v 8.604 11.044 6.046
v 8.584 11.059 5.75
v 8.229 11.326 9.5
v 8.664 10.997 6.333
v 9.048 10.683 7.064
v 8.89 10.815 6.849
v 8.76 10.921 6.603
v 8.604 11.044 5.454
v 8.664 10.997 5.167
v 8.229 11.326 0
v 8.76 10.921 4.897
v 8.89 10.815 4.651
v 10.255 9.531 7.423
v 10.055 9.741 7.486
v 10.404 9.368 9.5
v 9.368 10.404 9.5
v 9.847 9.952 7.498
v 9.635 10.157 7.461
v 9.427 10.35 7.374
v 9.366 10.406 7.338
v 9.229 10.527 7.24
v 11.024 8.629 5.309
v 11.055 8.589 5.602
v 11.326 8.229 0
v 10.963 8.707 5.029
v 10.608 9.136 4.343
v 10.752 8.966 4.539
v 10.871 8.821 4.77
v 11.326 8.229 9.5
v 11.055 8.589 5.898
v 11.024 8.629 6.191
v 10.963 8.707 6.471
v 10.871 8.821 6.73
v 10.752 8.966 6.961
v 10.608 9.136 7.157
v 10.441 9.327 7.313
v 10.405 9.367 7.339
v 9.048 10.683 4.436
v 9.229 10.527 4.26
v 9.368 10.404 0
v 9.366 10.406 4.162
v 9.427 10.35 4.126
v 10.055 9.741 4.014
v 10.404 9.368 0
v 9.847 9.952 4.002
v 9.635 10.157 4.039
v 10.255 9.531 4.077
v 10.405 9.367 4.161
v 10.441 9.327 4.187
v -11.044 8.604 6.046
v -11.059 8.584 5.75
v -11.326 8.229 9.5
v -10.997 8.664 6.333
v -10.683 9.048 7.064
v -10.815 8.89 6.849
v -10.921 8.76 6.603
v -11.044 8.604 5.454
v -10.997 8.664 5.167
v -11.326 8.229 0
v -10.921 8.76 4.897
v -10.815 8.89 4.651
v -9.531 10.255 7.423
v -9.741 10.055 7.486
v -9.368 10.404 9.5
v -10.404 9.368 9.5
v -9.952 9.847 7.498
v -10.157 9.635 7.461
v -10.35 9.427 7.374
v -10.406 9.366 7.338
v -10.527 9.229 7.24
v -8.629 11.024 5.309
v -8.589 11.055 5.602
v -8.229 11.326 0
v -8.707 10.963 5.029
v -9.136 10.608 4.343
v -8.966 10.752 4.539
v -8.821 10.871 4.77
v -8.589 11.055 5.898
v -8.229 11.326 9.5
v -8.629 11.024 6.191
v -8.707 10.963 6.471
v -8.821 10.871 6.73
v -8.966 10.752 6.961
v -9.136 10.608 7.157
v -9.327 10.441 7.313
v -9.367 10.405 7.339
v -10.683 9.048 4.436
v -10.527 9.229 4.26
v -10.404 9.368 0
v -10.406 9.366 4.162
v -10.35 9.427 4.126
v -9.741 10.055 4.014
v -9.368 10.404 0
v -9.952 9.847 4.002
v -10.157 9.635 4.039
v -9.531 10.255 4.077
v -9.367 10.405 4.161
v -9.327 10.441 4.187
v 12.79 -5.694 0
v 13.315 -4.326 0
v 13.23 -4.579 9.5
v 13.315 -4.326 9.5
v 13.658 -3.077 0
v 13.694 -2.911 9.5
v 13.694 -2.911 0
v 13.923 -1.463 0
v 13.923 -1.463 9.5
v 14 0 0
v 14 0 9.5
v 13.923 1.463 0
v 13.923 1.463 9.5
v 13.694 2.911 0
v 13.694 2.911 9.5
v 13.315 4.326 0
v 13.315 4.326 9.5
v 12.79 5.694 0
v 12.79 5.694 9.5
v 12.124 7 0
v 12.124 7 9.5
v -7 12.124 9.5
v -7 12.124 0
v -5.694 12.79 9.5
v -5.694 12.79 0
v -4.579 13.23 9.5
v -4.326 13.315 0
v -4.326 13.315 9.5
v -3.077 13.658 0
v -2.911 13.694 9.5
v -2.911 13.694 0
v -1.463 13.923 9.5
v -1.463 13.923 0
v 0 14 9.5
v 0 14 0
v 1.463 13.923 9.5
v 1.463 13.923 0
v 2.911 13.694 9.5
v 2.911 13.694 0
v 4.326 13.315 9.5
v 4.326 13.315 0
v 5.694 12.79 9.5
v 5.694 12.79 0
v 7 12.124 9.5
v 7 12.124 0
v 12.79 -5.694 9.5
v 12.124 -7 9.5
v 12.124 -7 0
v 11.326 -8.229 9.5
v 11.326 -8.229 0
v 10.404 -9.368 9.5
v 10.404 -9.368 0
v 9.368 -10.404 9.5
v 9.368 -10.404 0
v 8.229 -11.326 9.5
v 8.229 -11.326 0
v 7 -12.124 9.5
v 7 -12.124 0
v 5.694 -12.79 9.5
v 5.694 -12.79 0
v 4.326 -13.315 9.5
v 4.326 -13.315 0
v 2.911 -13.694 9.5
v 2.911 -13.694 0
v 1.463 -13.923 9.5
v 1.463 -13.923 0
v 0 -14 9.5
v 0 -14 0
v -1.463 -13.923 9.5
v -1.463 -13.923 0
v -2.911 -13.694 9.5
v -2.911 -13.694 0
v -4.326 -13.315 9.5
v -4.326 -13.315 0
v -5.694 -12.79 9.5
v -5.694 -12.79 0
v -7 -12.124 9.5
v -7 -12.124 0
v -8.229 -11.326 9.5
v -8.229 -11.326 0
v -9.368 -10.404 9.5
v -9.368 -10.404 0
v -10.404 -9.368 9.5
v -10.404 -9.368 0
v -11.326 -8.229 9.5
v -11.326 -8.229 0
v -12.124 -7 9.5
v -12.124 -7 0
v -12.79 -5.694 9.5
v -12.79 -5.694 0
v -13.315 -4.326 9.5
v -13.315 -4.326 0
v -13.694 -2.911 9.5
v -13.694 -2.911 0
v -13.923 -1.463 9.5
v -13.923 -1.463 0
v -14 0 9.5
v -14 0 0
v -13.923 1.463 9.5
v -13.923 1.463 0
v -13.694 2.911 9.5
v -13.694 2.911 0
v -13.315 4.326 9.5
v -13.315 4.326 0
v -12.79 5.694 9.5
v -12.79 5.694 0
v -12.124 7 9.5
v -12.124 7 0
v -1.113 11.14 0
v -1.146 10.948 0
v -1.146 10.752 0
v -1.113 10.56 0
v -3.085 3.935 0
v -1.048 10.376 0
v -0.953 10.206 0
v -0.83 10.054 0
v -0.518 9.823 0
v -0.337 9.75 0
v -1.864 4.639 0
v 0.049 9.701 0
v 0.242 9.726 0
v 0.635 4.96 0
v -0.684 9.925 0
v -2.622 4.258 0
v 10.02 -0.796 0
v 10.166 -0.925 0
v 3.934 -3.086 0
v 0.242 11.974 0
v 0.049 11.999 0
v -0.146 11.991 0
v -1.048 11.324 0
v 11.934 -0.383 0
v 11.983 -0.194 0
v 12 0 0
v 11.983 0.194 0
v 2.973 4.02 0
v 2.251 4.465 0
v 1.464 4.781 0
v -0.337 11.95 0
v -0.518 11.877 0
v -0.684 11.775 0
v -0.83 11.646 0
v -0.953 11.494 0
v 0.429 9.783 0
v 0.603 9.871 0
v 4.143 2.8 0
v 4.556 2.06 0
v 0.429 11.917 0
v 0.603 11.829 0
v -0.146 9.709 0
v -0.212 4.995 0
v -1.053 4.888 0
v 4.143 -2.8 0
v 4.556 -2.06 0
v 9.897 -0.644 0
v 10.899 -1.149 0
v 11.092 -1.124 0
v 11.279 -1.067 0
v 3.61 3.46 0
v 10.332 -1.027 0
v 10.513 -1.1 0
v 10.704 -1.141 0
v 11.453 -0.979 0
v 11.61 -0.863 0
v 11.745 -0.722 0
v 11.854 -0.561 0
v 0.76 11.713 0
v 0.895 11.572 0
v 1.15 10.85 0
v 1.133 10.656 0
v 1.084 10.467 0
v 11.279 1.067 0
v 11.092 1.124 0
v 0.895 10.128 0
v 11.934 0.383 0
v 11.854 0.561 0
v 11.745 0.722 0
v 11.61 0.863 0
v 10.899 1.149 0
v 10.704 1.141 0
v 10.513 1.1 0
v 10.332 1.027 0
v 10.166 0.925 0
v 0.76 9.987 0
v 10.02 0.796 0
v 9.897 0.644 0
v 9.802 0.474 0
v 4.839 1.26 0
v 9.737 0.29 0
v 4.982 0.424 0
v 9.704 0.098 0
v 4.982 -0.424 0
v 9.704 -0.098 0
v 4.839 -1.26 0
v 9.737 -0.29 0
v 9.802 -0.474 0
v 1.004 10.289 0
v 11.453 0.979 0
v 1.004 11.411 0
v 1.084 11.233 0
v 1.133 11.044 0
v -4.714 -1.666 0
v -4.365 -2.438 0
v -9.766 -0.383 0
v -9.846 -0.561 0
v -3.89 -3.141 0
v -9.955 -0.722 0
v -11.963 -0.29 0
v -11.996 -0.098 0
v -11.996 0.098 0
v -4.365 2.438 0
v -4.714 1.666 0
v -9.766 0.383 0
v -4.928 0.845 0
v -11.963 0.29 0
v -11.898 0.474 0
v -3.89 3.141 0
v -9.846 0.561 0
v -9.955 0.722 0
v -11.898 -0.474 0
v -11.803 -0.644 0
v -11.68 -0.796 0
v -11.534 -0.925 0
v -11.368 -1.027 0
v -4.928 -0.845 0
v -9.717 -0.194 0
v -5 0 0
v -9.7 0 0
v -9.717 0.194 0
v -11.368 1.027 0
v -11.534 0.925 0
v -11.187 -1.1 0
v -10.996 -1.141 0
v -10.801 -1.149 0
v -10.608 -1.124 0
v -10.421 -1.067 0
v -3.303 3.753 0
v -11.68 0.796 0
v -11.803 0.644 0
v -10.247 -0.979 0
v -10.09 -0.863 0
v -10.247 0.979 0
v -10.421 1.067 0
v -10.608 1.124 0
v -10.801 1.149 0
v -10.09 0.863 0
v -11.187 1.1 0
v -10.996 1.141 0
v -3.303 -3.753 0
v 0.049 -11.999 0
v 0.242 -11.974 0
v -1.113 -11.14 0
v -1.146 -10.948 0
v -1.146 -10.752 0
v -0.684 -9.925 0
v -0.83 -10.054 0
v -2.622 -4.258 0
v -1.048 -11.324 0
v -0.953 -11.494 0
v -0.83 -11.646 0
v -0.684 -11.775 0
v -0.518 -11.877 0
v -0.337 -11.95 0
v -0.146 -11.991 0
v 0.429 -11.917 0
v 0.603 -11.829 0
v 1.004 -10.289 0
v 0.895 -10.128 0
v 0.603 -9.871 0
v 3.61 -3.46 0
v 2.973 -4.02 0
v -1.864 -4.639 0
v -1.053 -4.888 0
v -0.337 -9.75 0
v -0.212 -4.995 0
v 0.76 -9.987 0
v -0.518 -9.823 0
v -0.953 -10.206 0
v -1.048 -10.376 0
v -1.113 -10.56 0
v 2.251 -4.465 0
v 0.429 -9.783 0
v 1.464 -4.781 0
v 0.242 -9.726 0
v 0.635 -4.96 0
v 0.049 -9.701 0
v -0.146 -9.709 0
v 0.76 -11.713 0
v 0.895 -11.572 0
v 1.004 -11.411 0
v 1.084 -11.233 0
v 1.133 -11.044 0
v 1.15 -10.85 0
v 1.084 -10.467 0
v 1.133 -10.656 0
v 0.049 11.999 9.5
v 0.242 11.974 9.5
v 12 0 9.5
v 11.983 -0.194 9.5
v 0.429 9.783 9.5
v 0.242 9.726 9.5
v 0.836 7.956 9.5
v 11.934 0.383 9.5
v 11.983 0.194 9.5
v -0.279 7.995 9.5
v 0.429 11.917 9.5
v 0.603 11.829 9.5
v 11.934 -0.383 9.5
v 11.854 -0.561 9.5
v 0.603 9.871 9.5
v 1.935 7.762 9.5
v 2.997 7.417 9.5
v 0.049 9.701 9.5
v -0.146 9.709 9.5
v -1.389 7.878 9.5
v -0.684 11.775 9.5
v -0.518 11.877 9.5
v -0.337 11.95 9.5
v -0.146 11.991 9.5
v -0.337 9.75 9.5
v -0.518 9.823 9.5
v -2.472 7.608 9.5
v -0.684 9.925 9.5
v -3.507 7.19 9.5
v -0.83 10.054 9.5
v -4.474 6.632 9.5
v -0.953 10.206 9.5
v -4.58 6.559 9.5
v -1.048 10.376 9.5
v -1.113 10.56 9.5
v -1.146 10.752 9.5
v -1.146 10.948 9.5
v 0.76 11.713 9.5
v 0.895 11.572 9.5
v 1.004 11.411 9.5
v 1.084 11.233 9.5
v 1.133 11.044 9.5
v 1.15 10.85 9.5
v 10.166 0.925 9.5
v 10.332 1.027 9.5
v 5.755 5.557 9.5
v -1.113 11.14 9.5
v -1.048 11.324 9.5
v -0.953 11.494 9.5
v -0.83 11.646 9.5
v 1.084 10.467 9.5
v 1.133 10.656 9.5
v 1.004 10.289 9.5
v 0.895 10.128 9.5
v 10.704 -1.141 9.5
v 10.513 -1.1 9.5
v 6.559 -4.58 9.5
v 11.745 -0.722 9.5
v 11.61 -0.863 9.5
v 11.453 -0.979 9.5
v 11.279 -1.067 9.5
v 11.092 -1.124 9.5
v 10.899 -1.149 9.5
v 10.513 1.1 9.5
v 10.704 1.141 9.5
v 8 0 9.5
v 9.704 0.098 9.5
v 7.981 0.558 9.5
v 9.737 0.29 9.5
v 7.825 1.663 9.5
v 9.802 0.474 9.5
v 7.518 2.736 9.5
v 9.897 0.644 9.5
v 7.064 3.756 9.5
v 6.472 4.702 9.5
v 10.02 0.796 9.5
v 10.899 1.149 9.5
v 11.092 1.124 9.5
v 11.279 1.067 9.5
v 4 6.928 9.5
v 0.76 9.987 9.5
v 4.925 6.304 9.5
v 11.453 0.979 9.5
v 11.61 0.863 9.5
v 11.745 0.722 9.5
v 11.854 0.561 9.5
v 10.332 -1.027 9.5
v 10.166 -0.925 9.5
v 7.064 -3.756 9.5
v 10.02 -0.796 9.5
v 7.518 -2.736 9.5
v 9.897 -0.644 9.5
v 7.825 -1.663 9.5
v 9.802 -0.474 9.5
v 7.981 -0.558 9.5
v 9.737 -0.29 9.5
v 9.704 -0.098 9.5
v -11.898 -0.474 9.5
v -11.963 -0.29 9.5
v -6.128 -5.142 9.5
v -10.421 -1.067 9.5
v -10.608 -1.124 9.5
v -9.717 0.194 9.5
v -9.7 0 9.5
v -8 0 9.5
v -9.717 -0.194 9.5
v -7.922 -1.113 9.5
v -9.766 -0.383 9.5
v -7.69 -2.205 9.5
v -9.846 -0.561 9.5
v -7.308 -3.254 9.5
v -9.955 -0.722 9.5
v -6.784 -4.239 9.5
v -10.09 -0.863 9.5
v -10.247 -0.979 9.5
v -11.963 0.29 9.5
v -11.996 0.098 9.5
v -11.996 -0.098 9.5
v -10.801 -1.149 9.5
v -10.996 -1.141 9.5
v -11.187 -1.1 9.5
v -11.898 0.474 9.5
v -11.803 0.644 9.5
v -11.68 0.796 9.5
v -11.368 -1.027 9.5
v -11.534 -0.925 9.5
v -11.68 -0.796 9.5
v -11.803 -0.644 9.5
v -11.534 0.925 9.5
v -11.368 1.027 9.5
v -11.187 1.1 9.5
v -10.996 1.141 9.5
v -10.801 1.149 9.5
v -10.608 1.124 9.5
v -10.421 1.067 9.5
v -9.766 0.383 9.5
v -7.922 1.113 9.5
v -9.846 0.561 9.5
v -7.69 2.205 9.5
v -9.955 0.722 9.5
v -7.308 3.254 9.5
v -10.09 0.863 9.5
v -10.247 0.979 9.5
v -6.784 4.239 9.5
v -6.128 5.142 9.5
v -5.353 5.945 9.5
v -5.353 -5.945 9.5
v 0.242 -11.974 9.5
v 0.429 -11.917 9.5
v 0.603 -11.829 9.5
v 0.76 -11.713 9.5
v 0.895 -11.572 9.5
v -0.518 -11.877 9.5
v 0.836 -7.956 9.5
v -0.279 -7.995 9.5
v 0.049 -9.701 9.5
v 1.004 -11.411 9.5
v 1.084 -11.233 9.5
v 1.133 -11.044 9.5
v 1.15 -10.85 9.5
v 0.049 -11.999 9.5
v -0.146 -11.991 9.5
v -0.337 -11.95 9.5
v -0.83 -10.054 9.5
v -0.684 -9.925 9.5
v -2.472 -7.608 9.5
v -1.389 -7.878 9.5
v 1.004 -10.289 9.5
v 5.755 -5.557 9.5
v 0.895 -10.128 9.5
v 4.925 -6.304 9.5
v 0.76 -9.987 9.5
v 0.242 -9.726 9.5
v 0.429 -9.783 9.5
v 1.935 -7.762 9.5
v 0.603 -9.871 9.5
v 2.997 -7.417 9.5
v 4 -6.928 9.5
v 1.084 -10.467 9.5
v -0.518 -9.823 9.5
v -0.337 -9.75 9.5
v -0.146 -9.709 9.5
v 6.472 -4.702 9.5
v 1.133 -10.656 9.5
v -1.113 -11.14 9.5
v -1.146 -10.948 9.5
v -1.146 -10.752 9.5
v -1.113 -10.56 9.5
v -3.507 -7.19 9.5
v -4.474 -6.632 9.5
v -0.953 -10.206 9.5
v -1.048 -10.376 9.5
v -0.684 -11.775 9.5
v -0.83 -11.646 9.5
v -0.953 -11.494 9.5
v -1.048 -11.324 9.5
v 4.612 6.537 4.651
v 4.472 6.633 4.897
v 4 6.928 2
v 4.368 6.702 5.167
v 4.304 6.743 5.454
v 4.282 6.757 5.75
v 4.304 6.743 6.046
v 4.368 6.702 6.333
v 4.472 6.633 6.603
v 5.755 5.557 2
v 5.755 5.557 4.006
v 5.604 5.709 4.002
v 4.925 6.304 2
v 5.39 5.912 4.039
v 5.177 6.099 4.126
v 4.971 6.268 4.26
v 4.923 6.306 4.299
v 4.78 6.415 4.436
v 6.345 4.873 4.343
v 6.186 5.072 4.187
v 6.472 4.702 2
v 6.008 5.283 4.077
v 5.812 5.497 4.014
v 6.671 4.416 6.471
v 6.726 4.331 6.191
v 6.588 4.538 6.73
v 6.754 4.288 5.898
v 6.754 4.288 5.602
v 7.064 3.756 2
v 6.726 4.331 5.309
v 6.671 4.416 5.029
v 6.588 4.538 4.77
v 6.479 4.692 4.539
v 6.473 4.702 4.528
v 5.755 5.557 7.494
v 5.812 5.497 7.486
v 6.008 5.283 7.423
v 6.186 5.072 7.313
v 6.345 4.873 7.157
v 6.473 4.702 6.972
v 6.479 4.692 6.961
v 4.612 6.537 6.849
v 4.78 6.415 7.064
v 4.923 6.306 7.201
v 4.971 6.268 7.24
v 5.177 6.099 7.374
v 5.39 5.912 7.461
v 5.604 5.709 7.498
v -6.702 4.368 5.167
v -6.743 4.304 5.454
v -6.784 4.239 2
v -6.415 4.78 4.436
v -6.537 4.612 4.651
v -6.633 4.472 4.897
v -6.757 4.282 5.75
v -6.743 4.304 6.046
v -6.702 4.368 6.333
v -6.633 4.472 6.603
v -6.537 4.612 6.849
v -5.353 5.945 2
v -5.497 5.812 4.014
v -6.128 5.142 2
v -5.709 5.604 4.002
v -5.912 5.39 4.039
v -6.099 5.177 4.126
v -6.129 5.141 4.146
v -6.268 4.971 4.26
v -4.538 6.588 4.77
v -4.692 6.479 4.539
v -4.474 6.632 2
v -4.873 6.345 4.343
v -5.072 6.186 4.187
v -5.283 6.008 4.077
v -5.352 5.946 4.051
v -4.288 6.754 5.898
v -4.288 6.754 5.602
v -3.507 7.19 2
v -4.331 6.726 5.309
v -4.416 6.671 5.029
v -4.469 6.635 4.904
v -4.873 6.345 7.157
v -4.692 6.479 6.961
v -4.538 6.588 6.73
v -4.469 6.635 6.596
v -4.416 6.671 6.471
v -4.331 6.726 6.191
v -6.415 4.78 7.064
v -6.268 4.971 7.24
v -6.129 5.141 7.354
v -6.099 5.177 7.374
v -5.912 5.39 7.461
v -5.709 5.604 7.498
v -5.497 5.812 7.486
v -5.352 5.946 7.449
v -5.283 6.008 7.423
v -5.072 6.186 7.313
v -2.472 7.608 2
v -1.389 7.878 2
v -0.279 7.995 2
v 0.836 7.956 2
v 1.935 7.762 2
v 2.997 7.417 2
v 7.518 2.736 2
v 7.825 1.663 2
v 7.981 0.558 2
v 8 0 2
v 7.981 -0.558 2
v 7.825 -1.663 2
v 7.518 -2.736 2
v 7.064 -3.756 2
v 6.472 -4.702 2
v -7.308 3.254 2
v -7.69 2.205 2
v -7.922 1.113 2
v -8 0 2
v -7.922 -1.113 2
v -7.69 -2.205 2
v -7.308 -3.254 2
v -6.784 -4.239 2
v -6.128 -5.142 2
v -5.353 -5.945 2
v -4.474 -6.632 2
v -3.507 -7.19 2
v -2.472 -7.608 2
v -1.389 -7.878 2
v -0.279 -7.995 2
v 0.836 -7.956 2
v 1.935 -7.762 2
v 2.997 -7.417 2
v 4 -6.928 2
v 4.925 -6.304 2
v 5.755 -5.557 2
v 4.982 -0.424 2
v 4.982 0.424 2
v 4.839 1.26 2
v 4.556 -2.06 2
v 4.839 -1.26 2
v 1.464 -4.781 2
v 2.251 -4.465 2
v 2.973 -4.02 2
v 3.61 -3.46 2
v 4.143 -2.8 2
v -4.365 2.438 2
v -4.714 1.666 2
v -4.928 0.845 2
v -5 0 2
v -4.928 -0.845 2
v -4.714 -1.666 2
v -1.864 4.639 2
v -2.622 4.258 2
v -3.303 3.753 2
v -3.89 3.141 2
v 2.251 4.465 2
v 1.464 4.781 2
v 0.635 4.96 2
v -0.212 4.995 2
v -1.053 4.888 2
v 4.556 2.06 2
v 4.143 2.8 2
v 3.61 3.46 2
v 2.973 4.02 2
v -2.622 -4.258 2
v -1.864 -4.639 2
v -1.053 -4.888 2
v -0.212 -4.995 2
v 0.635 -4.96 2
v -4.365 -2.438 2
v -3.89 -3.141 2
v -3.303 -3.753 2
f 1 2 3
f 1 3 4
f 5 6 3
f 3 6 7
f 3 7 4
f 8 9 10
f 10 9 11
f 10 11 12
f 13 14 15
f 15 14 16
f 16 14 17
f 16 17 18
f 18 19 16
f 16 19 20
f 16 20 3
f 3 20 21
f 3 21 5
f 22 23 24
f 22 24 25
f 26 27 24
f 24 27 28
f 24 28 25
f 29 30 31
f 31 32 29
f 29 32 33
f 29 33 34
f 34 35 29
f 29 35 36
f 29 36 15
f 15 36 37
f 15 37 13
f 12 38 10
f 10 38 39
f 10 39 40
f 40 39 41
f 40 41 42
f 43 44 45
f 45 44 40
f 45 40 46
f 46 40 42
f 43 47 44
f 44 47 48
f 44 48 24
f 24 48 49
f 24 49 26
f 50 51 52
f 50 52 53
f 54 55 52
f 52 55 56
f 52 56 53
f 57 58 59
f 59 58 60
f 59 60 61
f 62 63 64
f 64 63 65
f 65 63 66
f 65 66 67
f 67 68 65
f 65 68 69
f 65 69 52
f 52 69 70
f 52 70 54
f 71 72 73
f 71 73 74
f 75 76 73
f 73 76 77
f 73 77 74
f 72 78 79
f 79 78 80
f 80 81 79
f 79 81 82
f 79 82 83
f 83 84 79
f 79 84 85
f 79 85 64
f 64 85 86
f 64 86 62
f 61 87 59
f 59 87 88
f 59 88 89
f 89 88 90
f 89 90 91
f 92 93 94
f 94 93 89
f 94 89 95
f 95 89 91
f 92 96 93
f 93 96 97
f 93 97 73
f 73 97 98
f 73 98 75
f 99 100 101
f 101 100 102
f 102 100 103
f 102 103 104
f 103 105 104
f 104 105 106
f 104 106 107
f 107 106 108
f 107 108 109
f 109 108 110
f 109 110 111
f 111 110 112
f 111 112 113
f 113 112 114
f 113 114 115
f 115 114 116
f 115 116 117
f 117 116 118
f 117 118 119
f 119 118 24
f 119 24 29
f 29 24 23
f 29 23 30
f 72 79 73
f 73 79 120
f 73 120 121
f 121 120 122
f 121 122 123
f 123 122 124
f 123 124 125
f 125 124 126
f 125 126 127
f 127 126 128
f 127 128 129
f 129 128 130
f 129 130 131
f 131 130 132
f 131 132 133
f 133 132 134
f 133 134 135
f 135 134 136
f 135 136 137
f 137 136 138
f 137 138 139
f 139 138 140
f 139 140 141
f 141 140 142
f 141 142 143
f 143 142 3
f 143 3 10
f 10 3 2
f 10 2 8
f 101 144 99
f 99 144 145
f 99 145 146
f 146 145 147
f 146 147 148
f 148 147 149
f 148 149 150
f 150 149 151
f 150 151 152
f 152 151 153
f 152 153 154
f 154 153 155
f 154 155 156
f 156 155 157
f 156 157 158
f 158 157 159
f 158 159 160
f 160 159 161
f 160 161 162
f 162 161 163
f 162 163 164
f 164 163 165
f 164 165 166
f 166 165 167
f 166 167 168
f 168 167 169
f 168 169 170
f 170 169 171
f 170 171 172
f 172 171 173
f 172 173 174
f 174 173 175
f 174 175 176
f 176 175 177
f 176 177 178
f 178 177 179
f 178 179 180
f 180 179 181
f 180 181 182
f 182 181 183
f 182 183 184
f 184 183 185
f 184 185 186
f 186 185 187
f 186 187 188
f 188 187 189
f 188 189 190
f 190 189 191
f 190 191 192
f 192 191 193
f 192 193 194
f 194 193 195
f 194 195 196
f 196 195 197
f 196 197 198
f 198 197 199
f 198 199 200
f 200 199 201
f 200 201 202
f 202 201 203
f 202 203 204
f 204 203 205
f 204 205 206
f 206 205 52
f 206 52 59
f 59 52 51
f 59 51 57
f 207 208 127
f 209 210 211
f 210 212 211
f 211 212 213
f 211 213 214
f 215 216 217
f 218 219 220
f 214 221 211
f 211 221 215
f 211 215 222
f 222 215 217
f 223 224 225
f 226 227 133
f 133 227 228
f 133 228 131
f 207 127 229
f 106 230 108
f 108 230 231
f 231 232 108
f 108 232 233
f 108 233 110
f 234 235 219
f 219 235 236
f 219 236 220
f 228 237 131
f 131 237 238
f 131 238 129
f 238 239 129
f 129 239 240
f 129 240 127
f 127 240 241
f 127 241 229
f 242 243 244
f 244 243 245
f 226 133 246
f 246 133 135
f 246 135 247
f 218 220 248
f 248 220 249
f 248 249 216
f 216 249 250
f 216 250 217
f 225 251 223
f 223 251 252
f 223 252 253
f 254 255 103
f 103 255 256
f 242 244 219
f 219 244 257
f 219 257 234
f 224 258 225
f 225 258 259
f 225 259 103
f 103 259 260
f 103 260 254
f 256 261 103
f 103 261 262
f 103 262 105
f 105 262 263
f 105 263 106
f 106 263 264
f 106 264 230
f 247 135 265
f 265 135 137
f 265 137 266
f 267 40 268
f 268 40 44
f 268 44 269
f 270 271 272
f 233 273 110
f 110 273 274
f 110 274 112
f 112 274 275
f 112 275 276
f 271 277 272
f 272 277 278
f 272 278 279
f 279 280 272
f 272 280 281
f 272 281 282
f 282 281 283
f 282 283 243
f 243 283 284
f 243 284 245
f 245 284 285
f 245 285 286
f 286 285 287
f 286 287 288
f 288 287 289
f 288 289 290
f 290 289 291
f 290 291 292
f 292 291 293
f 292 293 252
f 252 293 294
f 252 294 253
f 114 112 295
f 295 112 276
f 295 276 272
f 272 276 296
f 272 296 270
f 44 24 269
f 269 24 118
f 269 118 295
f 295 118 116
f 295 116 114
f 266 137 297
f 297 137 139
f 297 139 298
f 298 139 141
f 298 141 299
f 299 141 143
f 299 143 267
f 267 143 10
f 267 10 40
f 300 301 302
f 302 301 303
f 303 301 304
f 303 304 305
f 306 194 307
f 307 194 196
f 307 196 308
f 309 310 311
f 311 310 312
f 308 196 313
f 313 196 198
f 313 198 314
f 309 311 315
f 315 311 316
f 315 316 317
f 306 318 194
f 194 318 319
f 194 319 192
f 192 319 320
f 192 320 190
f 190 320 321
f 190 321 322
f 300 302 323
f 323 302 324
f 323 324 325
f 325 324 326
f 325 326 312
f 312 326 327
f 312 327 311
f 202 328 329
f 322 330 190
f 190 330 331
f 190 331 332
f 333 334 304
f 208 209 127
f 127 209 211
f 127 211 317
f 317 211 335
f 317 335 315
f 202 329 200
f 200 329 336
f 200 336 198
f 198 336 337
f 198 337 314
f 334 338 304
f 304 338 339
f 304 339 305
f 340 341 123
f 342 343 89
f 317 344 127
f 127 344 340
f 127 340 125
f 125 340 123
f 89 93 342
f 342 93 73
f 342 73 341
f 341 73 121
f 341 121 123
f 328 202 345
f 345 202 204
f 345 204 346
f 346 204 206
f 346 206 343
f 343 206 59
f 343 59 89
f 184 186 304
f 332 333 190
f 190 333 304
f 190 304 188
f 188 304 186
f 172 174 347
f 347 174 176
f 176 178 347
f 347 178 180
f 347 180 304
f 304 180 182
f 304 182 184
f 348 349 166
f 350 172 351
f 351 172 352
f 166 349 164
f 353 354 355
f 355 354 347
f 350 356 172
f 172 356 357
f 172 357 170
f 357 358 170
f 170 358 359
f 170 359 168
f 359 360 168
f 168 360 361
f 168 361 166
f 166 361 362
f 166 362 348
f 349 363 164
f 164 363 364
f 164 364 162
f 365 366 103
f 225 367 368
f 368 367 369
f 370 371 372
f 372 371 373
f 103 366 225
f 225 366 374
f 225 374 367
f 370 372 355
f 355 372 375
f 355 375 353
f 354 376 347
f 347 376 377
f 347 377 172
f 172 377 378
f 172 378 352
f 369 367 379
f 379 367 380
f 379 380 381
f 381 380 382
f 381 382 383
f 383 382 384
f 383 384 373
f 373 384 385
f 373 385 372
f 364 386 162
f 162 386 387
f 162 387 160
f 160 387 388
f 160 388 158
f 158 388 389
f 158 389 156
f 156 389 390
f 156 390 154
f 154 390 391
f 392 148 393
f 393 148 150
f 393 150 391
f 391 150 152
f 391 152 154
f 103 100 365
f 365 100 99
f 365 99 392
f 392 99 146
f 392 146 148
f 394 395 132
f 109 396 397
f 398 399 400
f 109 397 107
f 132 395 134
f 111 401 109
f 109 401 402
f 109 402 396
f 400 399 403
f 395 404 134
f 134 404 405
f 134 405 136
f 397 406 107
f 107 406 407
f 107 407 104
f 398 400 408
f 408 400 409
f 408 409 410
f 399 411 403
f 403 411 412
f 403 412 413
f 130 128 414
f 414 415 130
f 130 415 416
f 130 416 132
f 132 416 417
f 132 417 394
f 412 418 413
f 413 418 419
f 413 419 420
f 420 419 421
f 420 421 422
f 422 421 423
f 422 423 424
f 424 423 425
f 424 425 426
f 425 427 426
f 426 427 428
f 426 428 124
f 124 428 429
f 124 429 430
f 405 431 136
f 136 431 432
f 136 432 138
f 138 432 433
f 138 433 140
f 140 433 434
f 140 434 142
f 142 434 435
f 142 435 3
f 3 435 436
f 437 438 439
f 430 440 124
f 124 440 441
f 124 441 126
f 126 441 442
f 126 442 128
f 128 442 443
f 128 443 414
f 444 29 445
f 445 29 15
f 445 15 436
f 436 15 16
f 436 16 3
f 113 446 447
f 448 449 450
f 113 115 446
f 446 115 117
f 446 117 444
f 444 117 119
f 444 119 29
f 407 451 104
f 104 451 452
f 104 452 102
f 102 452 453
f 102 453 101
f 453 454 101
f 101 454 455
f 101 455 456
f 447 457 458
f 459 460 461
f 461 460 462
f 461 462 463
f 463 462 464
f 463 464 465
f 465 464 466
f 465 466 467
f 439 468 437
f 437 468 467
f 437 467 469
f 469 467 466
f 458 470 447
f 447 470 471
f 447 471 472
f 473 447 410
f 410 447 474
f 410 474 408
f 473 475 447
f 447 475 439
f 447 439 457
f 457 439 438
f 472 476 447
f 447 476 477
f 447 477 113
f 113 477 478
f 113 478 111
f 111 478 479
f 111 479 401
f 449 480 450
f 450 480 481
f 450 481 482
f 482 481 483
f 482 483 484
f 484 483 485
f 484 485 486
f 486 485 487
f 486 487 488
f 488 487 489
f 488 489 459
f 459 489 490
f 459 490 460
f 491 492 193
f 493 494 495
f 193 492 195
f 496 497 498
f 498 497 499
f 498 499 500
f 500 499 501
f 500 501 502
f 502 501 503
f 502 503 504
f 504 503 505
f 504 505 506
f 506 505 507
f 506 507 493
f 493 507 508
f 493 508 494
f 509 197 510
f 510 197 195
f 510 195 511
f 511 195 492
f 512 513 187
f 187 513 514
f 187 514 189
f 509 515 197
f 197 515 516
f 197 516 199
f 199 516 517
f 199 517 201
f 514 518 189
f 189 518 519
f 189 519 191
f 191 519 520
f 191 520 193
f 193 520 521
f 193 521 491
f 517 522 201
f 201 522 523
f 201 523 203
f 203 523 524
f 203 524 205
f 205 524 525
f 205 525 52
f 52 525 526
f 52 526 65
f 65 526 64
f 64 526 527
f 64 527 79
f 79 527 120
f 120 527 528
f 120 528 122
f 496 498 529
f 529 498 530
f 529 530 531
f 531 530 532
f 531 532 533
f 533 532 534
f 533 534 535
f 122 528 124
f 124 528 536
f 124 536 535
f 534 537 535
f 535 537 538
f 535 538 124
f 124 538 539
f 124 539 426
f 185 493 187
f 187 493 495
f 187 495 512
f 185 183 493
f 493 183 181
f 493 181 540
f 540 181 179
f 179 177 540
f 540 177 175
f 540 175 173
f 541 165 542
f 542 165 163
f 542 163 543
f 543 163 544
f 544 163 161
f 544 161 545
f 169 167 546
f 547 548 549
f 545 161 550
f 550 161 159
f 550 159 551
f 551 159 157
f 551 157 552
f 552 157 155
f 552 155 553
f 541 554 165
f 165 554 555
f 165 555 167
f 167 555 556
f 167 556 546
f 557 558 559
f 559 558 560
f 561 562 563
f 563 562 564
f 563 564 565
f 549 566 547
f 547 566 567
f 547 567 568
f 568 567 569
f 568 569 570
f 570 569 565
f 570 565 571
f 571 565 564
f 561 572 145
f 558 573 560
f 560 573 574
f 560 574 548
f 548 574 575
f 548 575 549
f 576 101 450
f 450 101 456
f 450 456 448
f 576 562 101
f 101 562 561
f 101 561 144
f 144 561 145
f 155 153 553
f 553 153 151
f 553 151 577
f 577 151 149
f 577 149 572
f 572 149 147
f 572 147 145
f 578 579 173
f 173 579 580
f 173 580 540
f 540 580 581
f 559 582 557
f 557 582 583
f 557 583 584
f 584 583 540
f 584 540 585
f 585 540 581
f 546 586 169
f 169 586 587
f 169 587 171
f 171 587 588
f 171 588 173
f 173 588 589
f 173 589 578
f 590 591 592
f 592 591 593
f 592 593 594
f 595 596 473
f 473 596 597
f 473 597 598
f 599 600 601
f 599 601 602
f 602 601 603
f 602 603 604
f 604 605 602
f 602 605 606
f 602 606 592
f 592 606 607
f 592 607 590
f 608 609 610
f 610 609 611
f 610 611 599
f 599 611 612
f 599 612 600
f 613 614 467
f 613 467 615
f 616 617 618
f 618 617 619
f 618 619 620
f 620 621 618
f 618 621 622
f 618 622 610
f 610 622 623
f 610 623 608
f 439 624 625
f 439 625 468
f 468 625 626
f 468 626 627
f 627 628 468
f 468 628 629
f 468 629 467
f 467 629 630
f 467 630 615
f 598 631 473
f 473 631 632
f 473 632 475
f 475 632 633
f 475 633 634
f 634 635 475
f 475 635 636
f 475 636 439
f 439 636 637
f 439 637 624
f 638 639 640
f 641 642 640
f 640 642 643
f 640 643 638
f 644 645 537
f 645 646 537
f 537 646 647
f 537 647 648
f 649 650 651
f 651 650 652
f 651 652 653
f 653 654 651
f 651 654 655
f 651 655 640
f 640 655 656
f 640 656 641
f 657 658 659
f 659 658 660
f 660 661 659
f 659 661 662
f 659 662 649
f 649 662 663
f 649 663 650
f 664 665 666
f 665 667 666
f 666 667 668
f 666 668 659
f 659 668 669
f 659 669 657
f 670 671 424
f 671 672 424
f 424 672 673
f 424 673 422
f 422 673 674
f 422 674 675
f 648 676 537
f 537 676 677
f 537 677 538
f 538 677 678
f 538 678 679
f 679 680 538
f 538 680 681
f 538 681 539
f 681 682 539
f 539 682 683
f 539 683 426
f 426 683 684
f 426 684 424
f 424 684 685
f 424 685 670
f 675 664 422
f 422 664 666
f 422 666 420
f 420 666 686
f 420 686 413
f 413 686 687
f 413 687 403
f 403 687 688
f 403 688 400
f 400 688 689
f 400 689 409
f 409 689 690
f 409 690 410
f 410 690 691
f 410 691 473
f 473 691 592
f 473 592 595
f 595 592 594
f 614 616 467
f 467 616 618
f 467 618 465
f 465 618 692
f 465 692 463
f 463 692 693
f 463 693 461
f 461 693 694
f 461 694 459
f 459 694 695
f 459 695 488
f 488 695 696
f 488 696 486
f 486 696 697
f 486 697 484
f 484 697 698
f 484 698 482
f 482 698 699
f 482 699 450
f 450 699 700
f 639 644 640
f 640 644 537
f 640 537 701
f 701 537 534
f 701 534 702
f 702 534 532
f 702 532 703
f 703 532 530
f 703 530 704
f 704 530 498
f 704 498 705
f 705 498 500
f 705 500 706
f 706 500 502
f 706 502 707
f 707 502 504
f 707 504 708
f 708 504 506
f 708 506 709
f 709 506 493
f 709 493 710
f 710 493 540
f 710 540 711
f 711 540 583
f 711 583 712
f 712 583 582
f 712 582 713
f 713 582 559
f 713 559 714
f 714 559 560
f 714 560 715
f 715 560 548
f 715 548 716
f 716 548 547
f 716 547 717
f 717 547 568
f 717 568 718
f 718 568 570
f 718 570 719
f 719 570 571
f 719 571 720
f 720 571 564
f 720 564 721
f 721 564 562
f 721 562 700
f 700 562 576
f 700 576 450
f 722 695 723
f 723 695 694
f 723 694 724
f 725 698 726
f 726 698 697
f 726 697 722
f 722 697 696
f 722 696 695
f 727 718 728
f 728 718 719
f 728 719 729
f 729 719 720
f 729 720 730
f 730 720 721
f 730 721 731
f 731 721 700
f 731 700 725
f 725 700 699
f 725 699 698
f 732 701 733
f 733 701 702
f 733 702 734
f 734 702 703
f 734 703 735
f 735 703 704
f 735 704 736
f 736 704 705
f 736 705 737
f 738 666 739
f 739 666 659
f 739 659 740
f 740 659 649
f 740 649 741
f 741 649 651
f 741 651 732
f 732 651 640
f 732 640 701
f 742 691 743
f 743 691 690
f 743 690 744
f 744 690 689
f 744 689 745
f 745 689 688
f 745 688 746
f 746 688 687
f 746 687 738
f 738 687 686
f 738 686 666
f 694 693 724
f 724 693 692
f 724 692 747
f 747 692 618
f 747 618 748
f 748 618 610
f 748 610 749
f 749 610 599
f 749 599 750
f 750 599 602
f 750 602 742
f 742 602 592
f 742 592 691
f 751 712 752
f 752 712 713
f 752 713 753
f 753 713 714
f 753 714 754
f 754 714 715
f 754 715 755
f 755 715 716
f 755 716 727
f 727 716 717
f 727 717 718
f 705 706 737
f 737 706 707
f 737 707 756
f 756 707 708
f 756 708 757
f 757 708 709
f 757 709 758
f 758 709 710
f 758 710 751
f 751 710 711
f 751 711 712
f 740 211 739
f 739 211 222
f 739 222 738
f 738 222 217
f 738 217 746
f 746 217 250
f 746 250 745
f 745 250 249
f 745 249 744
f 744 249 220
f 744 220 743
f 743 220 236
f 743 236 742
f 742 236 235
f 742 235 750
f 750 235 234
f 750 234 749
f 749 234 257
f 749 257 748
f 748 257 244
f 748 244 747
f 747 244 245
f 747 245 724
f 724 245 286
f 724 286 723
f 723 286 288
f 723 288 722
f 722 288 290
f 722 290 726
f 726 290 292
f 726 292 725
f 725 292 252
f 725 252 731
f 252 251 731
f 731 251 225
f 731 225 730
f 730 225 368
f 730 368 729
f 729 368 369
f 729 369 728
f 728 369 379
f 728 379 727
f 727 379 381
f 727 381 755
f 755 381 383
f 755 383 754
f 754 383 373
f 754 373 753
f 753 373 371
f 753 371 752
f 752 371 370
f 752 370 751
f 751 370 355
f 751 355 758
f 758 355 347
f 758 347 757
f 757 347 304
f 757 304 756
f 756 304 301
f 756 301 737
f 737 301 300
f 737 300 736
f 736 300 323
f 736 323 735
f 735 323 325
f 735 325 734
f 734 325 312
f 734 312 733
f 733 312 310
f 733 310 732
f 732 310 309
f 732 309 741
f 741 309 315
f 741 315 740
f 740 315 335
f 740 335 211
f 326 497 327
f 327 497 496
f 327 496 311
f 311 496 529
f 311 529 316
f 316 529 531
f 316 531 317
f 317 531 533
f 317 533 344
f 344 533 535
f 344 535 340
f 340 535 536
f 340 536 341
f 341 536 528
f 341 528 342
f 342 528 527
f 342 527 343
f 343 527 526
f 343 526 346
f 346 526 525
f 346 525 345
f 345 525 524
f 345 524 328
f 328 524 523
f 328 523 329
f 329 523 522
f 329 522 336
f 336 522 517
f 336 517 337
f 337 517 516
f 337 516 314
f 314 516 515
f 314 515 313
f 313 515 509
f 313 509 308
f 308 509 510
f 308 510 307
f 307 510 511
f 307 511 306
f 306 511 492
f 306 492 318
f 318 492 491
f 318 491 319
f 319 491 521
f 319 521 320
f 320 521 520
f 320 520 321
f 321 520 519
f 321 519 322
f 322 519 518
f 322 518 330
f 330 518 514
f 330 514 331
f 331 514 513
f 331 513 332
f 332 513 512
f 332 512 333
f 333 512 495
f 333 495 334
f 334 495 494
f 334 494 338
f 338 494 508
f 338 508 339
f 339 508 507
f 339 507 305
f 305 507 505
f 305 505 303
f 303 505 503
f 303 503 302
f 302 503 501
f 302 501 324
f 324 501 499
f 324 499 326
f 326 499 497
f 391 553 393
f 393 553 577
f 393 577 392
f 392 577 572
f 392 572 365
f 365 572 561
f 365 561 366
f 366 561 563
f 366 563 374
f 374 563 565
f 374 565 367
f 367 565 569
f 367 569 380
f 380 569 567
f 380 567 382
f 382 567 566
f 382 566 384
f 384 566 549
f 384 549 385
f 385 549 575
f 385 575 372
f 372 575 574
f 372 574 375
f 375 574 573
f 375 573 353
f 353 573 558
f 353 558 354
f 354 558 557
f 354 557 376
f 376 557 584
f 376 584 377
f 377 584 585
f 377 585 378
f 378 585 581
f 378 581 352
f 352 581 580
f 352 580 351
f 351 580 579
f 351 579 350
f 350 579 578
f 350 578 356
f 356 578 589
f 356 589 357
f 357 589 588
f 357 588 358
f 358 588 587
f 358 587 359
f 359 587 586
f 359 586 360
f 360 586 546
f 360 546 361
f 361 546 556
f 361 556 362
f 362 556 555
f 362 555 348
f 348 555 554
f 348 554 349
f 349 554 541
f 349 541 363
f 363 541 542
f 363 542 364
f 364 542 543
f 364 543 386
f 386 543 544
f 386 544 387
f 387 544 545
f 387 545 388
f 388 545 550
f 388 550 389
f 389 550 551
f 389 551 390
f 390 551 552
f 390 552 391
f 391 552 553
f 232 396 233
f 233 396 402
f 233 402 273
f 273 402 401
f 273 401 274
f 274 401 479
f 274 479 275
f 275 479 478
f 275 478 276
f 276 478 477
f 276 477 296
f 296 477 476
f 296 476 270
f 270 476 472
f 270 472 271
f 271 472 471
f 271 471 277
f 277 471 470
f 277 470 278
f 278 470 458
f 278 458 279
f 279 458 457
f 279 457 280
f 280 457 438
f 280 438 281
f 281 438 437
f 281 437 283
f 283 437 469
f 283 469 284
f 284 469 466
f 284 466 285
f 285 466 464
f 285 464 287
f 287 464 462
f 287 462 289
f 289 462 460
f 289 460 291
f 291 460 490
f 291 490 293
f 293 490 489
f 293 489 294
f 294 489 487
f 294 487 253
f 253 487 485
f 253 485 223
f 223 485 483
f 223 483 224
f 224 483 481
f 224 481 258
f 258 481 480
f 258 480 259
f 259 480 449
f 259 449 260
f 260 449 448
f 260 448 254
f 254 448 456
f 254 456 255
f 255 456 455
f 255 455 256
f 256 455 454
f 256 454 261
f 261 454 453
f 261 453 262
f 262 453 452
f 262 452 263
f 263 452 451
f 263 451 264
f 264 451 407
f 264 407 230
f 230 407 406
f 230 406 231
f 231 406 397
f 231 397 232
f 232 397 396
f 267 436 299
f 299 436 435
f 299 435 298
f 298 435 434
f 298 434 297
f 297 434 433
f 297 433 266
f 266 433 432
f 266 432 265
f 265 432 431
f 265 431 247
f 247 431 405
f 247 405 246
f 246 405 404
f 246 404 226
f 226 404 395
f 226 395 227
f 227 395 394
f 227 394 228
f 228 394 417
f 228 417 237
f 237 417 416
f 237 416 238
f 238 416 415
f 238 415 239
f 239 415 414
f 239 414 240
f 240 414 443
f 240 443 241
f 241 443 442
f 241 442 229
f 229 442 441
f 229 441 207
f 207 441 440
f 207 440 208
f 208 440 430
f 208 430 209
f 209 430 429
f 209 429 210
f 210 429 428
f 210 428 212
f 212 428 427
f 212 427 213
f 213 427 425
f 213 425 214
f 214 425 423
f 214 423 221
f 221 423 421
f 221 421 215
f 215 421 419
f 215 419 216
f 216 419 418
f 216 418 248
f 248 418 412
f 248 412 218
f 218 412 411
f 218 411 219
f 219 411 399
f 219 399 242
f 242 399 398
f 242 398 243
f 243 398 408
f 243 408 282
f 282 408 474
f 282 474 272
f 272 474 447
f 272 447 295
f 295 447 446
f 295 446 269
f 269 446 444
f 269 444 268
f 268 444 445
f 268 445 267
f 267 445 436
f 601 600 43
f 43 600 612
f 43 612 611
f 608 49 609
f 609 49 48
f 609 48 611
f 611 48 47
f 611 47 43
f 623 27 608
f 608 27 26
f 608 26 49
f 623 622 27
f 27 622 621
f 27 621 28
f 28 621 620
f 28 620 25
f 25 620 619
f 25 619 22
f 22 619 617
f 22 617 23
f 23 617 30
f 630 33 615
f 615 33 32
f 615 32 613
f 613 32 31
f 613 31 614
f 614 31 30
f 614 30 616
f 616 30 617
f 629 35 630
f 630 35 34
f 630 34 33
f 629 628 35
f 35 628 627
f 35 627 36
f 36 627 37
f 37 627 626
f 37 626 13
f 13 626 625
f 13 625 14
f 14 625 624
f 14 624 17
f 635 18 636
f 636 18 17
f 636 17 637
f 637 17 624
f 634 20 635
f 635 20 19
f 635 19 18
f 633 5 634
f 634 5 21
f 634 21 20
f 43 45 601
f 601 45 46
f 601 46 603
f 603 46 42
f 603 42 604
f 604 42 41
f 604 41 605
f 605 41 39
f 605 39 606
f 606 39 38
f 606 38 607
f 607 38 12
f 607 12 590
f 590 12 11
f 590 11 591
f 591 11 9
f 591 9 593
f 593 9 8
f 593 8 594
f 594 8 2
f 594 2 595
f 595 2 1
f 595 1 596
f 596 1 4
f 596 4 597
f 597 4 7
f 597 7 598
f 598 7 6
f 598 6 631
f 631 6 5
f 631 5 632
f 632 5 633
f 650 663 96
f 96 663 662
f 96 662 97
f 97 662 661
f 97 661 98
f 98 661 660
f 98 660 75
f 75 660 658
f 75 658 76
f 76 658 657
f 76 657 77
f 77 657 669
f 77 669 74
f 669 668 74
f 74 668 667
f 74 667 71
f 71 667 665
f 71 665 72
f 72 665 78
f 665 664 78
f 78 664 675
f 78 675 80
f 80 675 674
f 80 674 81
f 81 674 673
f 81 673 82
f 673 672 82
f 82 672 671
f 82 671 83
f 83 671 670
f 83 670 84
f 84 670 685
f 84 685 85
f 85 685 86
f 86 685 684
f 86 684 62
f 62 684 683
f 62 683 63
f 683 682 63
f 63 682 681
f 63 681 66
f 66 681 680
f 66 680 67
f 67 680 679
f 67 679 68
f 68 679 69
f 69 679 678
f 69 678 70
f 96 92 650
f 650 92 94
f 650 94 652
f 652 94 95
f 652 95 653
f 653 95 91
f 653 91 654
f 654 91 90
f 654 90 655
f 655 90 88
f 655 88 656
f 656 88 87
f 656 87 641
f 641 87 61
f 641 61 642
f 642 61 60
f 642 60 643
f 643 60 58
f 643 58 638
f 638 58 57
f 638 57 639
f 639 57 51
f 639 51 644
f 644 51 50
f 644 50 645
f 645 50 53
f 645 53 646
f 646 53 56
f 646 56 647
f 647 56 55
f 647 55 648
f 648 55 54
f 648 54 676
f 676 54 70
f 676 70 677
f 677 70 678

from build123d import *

# Parameters (mm, degrees)
SKETCH1_R           = 14
BOSS_EXTRUDE1_DEPTH = 2
SKETCH2_R           = 14
SKETCH2_R_2         = 8
BOSS_EXTRUDE2_DEPTH = 7.5
SKETCH3_R           = 5
CUT_EXTRUDE1_DEPTH  = 2
SKETCH5_R           = 1.15
CUT_EXTRUDE2_DEPTH  = 22.960191256
SKETCH7_R           = 1.75
CUT_EXTRUDE3_DEPTH  = 7
SKETCH9_R           = 1.75
CUT_EXTRUDE4_DEPTH  = 7


with BuildPart() as part:
    # Sketch1 → Boss-Extrude1 (new body)
    with BuildSketch(Plane.XY):
        Circle(SKETCH1_R)
    extrude(amount=BOSS_EXTRUDE1_DEPTH)

    # Sketch2 → Boss-Extrude2 (add)
    with BuildSketch(Plane.XY.offset(2)):
        Circle(SKETCH2_R)
        Circle(SKETCH2_R_2, mode=Mode.SUBTRACT)
    extrude(amount=BOSS_EXTRUDE2_DEPTH)

    # Sketch3 → Cut-Extrude1 (cut)
    with BuildSketch(Plane(origin=(0, 0, 0), x_dir=(-1, 0, 0), z_dir=(0, 0, -1))):
        Circle(SKETCH3_R)
    extrude(amount=-CUT_EXTRUDE1_DEPTH, mode=Mode.SUBTRACT)

    # Sketch5 → Cut-Extrude2 (cut, through all)
    with BuildSketch(Plane.XY.offset(9.5)):
        with Locations((0, 10.85)):
            Circle(SKETCH5_R)
        with Locations((10.85, 0)):
            Circle(SKETCH5_R)
        with Locations((0, -10.85)):
            Circle(SKETCH5_R)
        with Locations((-10.85, 0)):
            Circle(SKETCH5_R)
    extrude(amount=-CUT_EXTRUDE2_DEPTH, mode=Mode.SUBTRACT)

    # Sketch7 → Cut-Extrude3 (cut)
    with BuildSketch(Plane(origin=(9.899494937, 9.899494937, 0), x_dir=(0.7071067811865489, -0.7071067811865461, 0), z_dir=(0.7071067811865461, 0.7071067811865489, 0))):
        with Locations((0, -5.75)):
            Circle(SKETCH7_R)
    extrude(amount=-CUT_EXTRUDE3_DEPTH, mode=Mode.SUBTRACT)

    # Sketch9 → Cut-Extrude4 (cut)
    with BuildSketch(Plane(origin=(-9.899494937, 9.899494937, 0), x_dir=(0, 0, 1), z_dir=(-0.7071067811865489, 0.7071067811865462, 0))):
        with Locations((5.75, 0)):
            Circle(SKETCH9_R)
    extrude(amount=-CUT_EXTRUDE4_DEPTH, mode=Mode.SUBTRACT)


solid = part.part
